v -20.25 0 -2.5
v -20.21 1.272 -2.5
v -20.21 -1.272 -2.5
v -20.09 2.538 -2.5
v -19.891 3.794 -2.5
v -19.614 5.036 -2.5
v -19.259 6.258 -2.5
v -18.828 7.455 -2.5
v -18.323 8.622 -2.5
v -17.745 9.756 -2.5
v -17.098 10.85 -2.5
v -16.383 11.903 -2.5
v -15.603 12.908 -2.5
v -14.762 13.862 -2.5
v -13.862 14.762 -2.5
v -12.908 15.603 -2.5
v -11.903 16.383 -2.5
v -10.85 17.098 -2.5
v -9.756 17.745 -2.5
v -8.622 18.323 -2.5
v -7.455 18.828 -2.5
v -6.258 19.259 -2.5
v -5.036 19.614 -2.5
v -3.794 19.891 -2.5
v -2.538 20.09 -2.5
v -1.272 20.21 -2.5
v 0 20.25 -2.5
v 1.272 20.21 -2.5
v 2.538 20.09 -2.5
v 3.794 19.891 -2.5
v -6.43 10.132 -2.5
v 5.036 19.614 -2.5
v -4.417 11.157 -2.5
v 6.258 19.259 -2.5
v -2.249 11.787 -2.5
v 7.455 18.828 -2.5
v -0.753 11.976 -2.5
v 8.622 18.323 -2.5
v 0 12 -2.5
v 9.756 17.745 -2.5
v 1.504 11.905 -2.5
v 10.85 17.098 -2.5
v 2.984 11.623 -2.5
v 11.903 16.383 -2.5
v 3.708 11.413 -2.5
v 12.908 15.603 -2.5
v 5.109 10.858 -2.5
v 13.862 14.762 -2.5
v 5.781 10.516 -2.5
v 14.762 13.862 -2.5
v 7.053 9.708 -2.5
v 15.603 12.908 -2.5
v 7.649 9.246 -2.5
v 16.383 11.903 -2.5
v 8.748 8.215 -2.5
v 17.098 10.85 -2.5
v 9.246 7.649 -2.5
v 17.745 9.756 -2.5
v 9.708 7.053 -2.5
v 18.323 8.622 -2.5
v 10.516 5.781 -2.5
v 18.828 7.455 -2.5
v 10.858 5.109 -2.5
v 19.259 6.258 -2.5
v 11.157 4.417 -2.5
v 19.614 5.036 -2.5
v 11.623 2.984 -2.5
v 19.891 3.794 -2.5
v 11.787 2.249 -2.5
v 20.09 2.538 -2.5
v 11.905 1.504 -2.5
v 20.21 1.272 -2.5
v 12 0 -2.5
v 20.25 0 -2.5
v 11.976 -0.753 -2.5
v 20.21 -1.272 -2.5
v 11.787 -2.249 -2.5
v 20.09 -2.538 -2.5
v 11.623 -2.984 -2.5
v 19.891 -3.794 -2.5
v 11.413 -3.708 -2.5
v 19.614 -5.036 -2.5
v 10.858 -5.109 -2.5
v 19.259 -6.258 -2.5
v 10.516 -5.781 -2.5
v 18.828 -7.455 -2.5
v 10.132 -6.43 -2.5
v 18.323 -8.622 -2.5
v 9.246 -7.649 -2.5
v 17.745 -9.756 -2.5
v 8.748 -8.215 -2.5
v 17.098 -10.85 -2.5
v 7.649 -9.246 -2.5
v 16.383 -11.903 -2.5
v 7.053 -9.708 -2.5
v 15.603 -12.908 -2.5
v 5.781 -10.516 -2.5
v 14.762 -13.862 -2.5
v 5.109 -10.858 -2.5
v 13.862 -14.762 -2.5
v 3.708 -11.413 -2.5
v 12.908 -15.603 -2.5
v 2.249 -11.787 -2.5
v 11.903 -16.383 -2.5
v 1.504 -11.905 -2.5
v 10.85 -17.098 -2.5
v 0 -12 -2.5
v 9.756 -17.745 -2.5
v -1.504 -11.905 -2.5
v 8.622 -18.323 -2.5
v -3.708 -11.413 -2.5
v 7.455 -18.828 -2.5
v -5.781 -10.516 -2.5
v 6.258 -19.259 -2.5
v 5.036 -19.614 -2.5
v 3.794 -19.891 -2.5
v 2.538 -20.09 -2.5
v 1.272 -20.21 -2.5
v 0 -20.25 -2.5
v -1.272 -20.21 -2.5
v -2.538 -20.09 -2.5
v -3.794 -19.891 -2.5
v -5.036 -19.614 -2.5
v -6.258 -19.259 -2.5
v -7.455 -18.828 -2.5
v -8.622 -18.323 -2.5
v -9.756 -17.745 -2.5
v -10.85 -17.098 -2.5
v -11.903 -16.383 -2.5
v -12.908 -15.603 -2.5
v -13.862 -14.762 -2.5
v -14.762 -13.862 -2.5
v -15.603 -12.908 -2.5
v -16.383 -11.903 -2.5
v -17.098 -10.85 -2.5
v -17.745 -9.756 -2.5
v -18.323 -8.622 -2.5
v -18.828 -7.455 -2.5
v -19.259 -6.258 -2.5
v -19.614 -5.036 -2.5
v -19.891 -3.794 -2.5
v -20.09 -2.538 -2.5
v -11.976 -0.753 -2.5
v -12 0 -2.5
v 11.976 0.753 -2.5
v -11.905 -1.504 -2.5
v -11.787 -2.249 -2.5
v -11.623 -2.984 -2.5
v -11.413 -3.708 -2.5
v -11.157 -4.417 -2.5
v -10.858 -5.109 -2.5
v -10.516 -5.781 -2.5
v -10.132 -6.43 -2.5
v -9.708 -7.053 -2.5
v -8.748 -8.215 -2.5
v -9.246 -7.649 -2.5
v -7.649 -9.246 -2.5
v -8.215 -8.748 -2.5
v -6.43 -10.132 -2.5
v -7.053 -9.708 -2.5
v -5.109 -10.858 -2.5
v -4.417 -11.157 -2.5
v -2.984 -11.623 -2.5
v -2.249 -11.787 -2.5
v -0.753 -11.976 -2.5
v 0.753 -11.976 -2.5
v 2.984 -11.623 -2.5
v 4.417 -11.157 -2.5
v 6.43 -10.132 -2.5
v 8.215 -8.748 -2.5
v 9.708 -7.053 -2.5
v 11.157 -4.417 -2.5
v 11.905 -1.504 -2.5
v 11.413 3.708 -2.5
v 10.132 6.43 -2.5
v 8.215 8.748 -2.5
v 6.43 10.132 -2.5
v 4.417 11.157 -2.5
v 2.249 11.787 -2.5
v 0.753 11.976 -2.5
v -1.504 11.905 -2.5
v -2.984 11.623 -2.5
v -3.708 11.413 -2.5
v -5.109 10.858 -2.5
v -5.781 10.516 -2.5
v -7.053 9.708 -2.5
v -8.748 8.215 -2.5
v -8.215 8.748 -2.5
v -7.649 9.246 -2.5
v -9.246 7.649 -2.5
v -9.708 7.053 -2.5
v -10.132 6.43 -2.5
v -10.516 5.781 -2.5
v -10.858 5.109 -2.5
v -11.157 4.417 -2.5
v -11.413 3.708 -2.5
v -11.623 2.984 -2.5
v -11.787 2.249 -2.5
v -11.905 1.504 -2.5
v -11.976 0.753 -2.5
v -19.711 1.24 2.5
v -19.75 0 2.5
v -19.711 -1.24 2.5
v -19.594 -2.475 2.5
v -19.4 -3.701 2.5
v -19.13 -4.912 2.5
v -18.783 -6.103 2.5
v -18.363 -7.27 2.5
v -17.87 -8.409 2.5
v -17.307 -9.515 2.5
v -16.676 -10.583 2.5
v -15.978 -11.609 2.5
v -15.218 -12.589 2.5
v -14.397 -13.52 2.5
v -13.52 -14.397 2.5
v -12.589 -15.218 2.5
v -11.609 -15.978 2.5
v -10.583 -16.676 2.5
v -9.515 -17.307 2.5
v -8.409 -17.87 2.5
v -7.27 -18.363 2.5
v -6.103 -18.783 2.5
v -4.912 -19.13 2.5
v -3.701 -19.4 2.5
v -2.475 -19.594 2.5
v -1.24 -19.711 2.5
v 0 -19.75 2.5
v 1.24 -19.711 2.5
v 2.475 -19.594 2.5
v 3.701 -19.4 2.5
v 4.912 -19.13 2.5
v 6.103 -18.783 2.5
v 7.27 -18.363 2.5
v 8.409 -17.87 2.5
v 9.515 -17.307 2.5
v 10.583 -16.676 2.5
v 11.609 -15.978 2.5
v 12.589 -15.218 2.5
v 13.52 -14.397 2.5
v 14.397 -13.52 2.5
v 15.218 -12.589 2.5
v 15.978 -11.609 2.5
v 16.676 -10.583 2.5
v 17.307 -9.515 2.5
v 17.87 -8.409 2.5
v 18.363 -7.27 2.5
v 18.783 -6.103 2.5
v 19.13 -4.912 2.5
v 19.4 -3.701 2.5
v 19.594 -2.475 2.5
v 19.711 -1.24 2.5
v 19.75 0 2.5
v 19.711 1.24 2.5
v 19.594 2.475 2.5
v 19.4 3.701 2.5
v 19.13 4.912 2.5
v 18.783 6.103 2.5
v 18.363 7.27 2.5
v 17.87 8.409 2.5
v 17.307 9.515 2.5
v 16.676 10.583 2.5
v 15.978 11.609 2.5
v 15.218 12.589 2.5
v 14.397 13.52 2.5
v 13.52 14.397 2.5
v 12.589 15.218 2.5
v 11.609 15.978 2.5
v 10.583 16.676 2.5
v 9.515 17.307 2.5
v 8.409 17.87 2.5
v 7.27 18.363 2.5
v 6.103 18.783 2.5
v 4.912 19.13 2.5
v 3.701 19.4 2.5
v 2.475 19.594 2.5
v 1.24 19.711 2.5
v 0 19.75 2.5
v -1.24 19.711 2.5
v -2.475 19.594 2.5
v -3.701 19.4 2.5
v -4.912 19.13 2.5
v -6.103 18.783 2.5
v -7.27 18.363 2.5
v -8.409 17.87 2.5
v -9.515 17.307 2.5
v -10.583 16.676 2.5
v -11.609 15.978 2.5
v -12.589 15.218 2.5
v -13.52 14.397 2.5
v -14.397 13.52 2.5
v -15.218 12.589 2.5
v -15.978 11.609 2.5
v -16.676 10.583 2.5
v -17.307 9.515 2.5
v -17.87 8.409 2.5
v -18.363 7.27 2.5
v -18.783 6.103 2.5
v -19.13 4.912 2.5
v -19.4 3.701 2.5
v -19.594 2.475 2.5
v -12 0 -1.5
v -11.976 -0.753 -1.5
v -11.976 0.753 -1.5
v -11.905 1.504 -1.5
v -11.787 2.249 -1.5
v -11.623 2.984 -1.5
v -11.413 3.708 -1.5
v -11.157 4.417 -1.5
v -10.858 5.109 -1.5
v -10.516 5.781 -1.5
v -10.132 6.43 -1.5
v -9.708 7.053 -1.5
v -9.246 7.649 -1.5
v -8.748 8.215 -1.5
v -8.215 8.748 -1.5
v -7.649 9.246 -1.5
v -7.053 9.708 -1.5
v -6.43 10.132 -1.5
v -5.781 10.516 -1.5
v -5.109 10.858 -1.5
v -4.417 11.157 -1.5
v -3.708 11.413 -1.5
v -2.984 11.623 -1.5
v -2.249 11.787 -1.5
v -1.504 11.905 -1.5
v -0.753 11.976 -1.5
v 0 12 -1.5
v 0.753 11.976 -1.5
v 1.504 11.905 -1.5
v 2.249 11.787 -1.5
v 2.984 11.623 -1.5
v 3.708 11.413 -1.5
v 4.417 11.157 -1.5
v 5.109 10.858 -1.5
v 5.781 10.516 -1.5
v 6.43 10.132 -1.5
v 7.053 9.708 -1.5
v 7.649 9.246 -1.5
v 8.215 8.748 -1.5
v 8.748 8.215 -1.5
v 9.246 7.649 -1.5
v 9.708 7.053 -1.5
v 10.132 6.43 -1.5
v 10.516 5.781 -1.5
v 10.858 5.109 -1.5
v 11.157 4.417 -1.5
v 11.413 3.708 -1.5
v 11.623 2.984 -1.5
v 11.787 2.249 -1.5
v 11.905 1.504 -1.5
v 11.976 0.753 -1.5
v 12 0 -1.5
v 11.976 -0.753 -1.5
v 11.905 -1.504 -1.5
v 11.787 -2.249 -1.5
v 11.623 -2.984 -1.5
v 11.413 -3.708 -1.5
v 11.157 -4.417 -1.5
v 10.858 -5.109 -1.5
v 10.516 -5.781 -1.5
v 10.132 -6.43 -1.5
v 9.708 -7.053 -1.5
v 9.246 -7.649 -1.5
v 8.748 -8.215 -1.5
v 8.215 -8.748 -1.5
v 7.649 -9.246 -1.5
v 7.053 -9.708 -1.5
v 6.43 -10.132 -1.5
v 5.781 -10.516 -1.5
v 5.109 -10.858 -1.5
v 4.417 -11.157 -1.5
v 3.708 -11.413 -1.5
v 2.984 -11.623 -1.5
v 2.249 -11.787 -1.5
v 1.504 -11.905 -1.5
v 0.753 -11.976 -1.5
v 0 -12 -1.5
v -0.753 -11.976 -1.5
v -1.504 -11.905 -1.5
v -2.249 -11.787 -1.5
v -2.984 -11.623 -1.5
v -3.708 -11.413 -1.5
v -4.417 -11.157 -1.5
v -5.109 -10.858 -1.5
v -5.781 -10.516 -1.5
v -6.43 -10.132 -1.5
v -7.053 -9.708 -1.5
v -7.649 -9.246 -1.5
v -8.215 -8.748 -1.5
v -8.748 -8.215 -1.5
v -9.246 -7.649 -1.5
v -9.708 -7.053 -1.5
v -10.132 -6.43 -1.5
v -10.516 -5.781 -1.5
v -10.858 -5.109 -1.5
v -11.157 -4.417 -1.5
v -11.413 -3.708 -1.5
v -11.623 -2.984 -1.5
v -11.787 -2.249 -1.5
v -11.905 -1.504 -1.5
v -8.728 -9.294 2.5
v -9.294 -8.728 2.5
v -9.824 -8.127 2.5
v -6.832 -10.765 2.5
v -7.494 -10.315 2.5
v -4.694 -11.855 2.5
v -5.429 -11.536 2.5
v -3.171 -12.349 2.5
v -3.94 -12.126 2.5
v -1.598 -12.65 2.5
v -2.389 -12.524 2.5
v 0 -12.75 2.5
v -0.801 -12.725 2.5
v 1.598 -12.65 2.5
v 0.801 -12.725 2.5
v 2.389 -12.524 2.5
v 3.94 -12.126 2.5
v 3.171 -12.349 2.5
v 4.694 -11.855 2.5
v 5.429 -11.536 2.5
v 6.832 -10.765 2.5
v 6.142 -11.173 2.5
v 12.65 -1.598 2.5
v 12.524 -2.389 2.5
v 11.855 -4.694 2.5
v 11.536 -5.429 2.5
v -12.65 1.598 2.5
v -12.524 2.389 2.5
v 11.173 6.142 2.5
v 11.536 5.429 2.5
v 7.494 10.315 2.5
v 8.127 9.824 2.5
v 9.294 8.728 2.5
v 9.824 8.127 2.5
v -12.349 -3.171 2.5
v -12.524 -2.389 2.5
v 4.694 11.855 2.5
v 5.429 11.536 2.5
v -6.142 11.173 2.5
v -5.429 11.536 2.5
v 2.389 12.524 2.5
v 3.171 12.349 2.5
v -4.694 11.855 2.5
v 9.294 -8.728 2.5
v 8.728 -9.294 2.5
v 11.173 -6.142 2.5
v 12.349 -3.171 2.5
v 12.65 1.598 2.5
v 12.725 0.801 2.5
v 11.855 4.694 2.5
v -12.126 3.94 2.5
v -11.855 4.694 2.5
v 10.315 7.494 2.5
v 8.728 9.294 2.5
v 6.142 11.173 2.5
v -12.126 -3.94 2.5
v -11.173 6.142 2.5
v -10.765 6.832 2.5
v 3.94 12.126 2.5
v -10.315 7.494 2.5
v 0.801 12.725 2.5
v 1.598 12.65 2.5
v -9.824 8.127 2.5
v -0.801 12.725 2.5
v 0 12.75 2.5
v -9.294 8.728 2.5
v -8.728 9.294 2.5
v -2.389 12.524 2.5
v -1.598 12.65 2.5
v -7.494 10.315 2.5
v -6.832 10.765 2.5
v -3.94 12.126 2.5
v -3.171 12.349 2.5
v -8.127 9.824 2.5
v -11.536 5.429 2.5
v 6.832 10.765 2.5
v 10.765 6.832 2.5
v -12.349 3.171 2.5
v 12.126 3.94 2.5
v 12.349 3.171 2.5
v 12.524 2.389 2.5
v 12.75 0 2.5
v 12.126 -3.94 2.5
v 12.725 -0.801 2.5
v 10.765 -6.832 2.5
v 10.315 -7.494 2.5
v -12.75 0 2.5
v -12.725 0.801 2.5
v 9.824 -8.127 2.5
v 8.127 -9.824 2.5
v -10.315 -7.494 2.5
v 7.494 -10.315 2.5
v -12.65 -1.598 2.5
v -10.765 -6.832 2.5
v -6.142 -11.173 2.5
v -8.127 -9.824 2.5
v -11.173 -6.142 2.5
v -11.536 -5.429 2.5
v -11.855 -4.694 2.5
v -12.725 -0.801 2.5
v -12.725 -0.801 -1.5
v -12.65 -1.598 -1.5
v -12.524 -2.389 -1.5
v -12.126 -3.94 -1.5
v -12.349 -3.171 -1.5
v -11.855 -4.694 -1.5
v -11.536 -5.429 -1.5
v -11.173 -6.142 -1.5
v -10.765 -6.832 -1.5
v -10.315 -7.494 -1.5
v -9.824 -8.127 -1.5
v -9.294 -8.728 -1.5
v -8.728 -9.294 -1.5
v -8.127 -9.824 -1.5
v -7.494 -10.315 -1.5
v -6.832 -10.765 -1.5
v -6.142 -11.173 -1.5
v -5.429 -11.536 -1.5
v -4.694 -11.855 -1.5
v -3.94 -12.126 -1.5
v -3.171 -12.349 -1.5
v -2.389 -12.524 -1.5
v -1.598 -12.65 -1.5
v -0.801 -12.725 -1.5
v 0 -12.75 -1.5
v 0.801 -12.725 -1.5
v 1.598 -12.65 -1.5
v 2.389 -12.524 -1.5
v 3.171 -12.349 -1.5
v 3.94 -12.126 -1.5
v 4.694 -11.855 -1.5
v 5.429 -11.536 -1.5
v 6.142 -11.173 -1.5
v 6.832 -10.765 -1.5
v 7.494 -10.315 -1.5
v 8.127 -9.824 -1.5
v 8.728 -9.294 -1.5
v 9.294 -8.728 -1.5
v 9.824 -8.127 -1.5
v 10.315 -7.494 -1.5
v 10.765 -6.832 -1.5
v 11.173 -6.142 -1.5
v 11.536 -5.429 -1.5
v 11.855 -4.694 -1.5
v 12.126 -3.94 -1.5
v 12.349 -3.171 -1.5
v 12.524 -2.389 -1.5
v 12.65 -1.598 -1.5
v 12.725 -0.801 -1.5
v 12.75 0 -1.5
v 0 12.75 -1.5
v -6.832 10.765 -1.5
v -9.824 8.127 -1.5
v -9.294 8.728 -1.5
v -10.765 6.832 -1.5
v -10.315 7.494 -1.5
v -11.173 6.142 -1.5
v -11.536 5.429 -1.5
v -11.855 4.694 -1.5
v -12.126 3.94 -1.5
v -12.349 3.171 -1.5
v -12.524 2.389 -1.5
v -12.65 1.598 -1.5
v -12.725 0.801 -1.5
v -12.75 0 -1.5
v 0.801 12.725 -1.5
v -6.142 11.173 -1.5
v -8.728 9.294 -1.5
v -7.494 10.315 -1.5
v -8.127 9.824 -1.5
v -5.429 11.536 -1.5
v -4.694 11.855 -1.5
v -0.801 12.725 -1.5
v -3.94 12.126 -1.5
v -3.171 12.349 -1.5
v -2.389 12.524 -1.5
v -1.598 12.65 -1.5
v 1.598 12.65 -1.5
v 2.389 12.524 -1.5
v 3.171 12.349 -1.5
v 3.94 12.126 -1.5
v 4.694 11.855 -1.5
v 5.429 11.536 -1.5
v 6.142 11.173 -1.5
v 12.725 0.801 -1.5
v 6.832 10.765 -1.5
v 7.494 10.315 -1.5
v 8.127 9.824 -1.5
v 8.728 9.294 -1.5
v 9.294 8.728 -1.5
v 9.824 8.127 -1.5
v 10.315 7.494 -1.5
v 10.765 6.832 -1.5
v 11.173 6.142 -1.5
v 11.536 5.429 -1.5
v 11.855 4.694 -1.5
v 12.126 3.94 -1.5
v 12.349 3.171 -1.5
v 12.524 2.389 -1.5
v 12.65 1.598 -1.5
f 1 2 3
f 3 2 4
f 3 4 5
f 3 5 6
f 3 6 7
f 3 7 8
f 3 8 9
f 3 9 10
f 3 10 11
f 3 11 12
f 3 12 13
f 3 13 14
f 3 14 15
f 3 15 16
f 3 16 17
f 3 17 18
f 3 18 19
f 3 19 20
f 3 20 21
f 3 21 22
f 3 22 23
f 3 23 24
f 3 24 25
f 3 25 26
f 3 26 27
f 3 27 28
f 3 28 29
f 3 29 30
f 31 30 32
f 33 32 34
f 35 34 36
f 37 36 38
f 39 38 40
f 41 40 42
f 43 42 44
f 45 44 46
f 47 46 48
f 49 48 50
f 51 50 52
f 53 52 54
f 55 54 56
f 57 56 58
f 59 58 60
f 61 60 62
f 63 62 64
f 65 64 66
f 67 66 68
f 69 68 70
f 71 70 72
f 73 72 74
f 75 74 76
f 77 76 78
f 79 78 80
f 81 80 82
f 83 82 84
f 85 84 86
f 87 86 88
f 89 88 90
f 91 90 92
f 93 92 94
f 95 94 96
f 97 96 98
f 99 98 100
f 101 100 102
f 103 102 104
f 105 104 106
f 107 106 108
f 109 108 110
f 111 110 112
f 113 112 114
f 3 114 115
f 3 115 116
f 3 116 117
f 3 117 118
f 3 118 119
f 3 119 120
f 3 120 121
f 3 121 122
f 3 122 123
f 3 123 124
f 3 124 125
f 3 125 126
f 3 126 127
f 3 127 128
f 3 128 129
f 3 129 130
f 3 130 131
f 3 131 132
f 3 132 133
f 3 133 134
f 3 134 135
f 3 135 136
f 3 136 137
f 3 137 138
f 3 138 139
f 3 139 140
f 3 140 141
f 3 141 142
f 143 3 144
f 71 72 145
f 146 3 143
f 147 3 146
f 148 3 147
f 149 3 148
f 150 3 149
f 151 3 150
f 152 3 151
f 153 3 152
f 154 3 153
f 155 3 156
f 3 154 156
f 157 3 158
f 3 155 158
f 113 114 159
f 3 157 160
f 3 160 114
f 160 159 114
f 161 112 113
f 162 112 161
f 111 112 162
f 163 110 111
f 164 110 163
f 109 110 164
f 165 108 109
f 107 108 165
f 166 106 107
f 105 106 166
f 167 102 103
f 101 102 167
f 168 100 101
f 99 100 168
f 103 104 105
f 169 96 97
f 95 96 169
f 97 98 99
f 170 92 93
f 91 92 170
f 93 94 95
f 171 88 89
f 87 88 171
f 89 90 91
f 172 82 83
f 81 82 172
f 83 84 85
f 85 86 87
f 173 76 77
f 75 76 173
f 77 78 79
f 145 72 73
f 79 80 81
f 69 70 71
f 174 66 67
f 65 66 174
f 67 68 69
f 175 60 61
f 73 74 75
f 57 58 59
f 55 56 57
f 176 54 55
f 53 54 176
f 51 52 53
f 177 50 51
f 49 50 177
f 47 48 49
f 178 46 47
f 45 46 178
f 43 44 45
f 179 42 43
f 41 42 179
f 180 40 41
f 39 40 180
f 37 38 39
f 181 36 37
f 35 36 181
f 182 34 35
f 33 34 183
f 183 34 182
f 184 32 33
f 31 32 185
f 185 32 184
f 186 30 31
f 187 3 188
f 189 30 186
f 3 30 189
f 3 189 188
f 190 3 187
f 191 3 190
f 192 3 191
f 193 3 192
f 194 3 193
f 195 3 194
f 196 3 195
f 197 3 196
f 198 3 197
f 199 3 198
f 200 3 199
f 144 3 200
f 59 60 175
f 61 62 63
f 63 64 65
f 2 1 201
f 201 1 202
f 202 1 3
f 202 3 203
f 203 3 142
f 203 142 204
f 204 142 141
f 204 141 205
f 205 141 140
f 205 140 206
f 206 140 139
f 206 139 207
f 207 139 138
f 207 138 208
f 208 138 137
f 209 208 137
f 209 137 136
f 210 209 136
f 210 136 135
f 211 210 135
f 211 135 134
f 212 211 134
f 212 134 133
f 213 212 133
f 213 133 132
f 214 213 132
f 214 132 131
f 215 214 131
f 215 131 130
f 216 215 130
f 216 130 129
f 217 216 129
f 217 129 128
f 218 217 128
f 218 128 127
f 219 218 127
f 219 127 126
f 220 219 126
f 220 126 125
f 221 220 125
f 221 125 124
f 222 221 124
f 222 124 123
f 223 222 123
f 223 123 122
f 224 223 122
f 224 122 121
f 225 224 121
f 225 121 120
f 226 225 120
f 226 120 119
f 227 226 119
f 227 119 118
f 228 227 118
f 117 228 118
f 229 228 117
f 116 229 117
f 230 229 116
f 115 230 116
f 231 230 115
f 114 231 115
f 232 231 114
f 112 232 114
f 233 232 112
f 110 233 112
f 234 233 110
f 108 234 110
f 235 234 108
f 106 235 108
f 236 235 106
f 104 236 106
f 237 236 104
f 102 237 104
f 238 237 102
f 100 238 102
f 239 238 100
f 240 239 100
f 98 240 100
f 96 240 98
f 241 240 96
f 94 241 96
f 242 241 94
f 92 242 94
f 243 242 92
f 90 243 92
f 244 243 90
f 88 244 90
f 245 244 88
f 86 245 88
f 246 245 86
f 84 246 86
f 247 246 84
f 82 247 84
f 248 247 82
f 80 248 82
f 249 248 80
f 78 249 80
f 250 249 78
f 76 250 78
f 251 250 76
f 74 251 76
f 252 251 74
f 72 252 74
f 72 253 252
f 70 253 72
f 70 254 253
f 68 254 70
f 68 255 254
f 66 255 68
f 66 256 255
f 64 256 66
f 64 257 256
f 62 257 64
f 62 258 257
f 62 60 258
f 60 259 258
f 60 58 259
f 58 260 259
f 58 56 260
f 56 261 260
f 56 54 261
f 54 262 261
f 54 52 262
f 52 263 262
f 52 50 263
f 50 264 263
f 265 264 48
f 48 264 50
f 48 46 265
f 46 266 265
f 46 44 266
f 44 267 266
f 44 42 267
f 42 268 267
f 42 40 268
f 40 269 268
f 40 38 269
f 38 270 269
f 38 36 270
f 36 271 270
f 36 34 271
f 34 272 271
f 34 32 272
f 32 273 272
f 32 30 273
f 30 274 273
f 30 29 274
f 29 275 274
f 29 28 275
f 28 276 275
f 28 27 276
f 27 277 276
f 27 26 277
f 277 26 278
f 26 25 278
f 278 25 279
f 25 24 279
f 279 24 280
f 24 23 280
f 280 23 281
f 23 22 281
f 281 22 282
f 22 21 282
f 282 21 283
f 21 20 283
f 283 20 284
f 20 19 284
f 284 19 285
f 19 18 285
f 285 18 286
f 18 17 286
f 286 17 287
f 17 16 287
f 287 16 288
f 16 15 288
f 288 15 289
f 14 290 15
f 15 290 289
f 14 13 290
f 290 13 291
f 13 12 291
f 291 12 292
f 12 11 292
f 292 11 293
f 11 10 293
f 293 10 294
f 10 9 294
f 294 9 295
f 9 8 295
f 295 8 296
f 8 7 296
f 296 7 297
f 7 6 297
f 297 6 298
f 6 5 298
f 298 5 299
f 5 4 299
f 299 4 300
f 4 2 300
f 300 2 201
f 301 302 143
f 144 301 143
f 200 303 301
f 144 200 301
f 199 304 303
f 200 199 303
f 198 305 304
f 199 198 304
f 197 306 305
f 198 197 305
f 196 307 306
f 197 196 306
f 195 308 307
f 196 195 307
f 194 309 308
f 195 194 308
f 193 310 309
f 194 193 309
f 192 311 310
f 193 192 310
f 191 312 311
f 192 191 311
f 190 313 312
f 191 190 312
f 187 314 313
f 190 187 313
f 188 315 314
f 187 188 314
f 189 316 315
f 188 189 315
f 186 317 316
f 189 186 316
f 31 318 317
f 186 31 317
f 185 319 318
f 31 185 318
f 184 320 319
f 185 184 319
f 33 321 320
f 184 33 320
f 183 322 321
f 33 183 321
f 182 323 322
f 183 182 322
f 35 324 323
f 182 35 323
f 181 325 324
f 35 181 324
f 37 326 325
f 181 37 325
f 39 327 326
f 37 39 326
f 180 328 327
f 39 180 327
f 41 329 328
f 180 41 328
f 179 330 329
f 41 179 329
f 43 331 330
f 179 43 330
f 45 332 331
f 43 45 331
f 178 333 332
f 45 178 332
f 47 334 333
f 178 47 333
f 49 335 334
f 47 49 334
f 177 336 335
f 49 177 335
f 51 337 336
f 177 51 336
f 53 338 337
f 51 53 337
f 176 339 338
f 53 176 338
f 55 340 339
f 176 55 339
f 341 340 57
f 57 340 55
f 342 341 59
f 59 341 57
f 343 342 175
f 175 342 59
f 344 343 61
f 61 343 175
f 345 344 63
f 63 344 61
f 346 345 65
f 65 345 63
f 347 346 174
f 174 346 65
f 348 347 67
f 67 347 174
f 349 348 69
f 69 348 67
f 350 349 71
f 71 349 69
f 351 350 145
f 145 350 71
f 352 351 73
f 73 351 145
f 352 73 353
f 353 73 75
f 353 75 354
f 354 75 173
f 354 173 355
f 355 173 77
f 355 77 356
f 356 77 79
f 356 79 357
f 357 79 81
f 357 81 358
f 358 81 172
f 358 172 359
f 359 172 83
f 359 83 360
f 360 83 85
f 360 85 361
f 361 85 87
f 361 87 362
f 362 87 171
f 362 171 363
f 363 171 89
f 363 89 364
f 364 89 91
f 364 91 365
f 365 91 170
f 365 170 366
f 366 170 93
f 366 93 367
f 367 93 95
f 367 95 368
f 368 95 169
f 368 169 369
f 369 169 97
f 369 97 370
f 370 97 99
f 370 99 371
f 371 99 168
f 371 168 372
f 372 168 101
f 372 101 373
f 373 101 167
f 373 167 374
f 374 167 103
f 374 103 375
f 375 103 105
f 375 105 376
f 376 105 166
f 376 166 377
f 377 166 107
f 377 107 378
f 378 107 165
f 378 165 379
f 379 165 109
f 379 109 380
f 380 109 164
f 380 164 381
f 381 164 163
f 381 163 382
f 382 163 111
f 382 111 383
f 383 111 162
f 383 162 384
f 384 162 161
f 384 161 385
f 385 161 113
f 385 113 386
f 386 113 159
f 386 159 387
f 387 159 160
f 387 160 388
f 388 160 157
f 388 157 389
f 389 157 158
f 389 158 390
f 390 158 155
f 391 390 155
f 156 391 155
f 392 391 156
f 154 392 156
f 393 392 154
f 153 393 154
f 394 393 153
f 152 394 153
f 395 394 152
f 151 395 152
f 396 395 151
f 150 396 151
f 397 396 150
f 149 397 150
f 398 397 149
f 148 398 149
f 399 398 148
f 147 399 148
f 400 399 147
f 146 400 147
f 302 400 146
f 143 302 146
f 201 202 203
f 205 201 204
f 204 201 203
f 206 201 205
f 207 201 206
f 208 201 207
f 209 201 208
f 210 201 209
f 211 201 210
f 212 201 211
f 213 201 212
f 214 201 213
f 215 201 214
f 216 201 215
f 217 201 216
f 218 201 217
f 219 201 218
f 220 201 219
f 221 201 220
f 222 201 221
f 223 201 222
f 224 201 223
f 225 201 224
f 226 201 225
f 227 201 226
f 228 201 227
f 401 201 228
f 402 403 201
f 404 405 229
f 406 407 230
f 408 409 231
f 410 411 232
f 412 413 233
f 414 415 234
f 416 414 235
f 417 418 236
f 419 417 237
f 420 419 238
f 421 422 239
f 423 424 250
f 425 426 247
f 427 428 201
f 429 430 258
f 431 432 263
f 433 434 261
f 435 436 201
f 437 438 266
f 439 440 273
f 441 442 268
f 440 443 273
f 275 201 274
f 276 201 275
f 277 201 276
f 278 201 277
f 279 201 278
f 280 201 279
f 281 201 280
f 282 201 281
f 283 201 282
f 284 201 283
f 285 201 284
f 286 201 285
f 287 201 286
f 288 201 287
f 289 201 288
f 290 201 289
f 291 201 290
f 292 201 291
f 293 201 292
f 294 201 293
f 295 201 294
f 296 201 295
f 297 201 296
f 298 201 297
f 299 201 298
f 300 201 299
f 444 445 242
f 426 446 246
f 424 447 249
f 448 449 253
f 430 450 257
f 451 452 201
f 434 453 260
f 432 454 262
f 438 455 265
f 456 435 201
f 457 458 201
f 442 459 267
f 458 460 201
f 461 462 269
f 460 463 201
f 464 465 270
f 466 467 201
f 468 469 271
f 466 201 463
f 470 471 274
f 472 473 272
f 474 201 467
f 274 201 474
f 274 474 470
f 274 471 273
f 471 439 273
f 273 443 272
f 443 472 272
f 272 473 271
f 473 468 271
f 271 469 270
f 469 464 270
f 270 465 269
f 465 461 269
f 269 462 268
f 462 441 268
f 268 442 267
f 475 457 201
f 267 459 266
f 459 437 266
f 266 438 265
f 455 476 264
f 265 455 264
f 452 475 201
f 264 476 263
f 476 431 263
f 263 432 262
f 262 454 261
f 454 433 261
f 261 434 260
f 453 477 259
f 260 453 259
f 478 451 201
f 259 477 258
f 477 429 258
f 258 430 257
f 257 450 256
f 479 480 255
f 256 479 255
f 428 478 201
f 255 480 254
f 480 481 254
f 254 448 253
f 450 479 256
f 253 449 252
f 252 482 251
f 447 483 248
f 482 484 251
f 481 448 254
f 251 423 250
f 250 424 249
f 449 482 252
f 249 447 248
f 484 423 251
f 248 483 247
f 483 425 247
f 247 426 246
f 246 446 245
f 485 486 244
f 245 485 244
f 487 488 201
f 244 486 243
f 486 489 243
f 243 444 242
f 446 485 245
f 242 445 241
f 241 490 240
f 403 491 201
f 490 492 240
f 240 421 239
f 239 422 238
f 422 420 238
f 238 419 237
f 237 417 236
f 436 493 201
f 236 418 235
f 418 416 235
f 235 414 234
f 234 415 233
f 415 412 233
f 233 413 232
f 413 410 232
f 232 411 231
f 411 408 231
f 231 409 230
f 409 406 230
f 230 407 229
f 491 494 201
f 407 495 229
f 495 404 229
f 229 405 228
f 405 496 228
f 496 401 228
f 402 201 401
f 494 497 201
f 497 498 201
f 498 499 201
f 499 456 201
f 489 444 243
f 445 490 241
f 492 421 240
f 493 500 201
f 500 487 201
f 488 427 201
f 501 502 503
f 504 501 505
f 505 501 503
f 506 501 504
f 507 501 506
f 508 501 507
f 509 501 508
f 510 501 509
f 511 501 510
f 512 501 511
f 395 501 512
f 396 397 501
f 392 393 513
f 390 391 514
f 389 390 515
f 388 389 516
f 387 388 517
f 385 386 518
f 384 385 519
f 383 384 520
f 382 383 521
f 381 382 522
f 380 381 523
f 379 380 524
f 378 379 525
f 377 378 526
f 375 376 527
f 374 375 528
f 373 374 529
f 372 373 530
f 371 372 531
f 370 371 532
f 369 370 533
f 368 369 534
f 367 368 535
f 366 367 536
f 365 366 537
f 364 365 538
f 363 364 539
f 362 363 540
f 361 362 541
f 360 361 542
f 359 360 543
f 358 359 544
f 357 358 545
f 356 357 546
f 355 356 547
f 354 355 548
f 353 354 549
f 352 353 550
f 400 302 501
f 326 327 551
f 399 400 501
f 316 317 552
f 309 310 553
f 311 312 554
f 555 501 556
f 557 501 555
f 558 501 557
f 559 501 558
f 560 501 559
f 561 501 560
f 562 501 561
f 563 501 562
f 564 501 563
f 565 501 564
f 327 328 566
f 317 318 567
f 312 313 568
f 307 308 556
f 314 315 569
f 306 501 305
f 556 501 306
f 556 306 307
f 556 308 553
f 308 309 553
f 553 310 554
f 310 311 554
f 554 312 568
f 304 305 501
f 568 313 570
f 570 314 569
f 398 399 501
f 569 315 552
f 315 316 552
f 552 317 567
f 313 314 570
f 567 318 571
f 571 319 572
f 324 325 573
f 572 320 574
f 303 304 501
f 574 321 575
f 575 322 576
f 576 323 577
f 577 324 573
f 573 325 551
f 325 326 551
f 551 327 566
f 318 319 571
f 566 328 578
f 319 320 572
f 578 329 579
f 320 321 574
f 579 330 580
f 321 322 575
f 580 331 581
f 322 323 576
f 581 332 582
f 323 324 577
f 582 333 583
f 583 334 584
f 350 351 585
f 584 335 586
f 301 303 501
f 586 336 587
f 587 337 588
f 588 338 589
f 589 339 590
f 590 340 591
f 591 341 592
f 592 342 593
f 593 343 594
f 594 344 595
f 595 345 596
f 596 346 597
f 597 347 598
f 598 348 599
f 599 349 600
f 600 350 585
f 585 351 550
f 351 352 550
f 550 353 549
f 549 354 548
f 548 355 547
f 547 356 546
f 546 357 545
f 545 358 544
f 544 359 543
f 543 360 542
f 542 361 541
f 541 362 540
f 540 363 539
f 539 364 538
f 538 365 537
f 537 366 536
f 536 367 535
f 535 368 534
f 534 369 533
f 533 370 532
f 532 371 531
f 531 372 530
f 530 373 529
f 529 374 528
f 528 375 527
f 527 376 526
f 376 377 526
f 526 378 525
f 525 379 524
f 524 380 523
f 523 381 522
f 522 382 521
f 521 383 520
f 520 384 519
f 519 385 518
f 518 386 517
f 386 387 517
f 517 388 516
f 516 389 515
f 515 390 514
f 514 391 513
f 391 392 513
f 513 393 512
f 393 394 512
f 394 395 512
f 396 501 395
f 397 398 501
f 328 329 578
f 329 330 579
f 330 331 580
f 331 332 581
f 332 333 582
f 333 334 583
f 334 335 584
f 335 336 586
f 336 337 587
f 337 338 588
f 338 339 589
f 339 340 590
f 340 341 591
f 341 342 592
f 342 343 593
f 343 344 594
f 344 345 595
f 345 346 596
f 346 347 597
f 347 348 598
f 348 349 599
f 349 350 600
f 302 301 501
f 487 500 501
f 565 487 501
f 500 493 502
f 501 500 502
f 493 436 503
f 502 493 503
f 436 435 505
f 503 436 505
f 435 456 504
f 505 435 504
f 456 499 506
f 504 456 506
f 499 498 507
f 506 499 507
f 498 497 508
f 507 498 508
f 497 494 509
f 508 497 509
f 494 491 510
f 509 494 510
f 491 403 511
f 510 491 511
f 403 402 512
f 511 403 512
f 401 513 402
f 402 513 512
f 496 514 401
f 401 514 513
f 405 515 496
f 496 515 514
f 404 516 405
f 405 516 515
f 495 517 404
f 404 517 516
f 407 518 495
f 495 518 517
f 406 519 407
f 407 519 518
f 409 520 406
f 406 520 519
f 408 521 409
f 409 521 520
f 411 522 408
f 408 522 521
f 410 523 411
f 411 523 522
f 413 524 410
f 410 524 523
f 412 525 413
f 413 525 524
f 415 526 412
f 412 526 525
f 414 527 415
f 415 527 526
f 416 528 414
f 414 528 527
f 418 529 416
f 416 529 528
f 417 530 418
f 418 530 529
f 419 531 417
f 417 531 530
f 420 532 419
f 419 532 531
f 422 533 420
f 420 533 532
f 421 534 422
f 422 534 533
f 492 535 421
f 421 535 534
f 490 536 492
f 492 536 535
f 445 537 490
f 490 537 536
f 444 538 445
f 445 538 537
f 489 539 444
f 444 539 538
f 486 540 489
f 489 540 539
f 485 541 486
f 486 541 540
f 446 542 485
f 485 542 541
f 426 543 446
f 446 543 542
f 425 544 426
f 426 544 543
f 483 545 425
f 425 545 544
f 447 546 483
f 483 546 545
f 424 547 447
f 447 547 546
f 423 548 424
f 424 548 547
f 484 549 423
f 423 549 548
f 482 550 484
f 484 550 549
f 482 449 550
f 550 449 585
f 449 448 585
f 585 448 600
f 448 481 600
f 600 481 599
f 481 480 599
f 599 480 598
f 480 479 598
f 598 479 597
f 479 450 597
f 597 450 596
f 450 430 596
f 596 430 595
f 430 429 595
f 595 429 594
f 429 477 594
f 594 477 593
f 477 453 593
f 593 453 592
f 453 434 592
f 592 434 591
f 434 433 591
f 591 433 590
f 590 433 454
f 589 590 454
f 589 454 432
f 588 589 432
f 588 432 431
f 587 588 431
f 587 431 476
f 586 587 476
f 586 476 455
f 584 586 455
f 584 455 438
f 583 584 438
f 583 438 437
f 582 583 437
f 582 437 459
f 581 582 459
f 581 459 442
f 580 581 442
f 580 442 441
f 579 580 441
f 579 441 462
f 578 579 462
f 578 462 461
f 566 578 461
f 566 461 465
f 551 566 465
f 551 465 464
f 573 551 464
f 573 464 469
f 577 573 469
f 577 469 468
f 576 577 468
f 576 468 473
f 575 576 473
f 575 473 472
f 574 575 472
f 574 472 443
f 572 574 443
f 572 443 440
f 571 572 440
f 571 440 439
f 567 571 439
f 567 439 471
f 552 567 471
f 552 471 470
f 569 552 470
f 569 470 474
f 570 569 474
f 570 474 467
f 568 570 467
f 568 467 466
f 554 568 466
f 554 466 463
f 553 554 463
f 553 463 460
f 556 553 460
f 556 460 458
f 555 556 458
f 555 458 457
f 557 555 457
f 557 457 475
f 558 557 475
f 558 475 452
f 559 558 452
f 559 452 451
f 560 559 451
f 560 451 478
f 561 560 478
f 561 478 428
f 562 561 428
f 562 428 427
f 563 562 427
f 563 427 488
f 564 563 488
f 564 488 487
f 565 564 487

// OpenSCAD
// Mounting adapter for 25mm lens to be inserted in the 40mm aperture of an IR camera. Dimensions can be adjusted for other uses. There is a lip for the inserted 

// Note the outside has a varying diameter, so the mounc can be firmly pushed into a roudn opening.

outer_top = 39.5; // outer diameter top
outer_bottom = 40.5; // outer diameter bottom
inner = 25.5; // inner diameter
inner_lip = 24; // inner diameter to form a lip
inner_lip_thick = 0.5; // thickness of the lip
thick = 5; // thickness

res = 100; //resolution of the part


difference(){
	// main cylinder to form the outer edge
	cylinder(h=thick,r1=outer_bottom/2,r2=outer_top/2,center=true,$fn=res);
	// make two holes, for the lens and smaller one for the lip
	translate([0,0,inner_lip_thick])
	cylinder(h=thick-inner_lip_thick*2,r=inner/2,center=true,$fn=res);
	cylinder(h=thick,r=inner_lip/2,center=true,$fn=res);
}
